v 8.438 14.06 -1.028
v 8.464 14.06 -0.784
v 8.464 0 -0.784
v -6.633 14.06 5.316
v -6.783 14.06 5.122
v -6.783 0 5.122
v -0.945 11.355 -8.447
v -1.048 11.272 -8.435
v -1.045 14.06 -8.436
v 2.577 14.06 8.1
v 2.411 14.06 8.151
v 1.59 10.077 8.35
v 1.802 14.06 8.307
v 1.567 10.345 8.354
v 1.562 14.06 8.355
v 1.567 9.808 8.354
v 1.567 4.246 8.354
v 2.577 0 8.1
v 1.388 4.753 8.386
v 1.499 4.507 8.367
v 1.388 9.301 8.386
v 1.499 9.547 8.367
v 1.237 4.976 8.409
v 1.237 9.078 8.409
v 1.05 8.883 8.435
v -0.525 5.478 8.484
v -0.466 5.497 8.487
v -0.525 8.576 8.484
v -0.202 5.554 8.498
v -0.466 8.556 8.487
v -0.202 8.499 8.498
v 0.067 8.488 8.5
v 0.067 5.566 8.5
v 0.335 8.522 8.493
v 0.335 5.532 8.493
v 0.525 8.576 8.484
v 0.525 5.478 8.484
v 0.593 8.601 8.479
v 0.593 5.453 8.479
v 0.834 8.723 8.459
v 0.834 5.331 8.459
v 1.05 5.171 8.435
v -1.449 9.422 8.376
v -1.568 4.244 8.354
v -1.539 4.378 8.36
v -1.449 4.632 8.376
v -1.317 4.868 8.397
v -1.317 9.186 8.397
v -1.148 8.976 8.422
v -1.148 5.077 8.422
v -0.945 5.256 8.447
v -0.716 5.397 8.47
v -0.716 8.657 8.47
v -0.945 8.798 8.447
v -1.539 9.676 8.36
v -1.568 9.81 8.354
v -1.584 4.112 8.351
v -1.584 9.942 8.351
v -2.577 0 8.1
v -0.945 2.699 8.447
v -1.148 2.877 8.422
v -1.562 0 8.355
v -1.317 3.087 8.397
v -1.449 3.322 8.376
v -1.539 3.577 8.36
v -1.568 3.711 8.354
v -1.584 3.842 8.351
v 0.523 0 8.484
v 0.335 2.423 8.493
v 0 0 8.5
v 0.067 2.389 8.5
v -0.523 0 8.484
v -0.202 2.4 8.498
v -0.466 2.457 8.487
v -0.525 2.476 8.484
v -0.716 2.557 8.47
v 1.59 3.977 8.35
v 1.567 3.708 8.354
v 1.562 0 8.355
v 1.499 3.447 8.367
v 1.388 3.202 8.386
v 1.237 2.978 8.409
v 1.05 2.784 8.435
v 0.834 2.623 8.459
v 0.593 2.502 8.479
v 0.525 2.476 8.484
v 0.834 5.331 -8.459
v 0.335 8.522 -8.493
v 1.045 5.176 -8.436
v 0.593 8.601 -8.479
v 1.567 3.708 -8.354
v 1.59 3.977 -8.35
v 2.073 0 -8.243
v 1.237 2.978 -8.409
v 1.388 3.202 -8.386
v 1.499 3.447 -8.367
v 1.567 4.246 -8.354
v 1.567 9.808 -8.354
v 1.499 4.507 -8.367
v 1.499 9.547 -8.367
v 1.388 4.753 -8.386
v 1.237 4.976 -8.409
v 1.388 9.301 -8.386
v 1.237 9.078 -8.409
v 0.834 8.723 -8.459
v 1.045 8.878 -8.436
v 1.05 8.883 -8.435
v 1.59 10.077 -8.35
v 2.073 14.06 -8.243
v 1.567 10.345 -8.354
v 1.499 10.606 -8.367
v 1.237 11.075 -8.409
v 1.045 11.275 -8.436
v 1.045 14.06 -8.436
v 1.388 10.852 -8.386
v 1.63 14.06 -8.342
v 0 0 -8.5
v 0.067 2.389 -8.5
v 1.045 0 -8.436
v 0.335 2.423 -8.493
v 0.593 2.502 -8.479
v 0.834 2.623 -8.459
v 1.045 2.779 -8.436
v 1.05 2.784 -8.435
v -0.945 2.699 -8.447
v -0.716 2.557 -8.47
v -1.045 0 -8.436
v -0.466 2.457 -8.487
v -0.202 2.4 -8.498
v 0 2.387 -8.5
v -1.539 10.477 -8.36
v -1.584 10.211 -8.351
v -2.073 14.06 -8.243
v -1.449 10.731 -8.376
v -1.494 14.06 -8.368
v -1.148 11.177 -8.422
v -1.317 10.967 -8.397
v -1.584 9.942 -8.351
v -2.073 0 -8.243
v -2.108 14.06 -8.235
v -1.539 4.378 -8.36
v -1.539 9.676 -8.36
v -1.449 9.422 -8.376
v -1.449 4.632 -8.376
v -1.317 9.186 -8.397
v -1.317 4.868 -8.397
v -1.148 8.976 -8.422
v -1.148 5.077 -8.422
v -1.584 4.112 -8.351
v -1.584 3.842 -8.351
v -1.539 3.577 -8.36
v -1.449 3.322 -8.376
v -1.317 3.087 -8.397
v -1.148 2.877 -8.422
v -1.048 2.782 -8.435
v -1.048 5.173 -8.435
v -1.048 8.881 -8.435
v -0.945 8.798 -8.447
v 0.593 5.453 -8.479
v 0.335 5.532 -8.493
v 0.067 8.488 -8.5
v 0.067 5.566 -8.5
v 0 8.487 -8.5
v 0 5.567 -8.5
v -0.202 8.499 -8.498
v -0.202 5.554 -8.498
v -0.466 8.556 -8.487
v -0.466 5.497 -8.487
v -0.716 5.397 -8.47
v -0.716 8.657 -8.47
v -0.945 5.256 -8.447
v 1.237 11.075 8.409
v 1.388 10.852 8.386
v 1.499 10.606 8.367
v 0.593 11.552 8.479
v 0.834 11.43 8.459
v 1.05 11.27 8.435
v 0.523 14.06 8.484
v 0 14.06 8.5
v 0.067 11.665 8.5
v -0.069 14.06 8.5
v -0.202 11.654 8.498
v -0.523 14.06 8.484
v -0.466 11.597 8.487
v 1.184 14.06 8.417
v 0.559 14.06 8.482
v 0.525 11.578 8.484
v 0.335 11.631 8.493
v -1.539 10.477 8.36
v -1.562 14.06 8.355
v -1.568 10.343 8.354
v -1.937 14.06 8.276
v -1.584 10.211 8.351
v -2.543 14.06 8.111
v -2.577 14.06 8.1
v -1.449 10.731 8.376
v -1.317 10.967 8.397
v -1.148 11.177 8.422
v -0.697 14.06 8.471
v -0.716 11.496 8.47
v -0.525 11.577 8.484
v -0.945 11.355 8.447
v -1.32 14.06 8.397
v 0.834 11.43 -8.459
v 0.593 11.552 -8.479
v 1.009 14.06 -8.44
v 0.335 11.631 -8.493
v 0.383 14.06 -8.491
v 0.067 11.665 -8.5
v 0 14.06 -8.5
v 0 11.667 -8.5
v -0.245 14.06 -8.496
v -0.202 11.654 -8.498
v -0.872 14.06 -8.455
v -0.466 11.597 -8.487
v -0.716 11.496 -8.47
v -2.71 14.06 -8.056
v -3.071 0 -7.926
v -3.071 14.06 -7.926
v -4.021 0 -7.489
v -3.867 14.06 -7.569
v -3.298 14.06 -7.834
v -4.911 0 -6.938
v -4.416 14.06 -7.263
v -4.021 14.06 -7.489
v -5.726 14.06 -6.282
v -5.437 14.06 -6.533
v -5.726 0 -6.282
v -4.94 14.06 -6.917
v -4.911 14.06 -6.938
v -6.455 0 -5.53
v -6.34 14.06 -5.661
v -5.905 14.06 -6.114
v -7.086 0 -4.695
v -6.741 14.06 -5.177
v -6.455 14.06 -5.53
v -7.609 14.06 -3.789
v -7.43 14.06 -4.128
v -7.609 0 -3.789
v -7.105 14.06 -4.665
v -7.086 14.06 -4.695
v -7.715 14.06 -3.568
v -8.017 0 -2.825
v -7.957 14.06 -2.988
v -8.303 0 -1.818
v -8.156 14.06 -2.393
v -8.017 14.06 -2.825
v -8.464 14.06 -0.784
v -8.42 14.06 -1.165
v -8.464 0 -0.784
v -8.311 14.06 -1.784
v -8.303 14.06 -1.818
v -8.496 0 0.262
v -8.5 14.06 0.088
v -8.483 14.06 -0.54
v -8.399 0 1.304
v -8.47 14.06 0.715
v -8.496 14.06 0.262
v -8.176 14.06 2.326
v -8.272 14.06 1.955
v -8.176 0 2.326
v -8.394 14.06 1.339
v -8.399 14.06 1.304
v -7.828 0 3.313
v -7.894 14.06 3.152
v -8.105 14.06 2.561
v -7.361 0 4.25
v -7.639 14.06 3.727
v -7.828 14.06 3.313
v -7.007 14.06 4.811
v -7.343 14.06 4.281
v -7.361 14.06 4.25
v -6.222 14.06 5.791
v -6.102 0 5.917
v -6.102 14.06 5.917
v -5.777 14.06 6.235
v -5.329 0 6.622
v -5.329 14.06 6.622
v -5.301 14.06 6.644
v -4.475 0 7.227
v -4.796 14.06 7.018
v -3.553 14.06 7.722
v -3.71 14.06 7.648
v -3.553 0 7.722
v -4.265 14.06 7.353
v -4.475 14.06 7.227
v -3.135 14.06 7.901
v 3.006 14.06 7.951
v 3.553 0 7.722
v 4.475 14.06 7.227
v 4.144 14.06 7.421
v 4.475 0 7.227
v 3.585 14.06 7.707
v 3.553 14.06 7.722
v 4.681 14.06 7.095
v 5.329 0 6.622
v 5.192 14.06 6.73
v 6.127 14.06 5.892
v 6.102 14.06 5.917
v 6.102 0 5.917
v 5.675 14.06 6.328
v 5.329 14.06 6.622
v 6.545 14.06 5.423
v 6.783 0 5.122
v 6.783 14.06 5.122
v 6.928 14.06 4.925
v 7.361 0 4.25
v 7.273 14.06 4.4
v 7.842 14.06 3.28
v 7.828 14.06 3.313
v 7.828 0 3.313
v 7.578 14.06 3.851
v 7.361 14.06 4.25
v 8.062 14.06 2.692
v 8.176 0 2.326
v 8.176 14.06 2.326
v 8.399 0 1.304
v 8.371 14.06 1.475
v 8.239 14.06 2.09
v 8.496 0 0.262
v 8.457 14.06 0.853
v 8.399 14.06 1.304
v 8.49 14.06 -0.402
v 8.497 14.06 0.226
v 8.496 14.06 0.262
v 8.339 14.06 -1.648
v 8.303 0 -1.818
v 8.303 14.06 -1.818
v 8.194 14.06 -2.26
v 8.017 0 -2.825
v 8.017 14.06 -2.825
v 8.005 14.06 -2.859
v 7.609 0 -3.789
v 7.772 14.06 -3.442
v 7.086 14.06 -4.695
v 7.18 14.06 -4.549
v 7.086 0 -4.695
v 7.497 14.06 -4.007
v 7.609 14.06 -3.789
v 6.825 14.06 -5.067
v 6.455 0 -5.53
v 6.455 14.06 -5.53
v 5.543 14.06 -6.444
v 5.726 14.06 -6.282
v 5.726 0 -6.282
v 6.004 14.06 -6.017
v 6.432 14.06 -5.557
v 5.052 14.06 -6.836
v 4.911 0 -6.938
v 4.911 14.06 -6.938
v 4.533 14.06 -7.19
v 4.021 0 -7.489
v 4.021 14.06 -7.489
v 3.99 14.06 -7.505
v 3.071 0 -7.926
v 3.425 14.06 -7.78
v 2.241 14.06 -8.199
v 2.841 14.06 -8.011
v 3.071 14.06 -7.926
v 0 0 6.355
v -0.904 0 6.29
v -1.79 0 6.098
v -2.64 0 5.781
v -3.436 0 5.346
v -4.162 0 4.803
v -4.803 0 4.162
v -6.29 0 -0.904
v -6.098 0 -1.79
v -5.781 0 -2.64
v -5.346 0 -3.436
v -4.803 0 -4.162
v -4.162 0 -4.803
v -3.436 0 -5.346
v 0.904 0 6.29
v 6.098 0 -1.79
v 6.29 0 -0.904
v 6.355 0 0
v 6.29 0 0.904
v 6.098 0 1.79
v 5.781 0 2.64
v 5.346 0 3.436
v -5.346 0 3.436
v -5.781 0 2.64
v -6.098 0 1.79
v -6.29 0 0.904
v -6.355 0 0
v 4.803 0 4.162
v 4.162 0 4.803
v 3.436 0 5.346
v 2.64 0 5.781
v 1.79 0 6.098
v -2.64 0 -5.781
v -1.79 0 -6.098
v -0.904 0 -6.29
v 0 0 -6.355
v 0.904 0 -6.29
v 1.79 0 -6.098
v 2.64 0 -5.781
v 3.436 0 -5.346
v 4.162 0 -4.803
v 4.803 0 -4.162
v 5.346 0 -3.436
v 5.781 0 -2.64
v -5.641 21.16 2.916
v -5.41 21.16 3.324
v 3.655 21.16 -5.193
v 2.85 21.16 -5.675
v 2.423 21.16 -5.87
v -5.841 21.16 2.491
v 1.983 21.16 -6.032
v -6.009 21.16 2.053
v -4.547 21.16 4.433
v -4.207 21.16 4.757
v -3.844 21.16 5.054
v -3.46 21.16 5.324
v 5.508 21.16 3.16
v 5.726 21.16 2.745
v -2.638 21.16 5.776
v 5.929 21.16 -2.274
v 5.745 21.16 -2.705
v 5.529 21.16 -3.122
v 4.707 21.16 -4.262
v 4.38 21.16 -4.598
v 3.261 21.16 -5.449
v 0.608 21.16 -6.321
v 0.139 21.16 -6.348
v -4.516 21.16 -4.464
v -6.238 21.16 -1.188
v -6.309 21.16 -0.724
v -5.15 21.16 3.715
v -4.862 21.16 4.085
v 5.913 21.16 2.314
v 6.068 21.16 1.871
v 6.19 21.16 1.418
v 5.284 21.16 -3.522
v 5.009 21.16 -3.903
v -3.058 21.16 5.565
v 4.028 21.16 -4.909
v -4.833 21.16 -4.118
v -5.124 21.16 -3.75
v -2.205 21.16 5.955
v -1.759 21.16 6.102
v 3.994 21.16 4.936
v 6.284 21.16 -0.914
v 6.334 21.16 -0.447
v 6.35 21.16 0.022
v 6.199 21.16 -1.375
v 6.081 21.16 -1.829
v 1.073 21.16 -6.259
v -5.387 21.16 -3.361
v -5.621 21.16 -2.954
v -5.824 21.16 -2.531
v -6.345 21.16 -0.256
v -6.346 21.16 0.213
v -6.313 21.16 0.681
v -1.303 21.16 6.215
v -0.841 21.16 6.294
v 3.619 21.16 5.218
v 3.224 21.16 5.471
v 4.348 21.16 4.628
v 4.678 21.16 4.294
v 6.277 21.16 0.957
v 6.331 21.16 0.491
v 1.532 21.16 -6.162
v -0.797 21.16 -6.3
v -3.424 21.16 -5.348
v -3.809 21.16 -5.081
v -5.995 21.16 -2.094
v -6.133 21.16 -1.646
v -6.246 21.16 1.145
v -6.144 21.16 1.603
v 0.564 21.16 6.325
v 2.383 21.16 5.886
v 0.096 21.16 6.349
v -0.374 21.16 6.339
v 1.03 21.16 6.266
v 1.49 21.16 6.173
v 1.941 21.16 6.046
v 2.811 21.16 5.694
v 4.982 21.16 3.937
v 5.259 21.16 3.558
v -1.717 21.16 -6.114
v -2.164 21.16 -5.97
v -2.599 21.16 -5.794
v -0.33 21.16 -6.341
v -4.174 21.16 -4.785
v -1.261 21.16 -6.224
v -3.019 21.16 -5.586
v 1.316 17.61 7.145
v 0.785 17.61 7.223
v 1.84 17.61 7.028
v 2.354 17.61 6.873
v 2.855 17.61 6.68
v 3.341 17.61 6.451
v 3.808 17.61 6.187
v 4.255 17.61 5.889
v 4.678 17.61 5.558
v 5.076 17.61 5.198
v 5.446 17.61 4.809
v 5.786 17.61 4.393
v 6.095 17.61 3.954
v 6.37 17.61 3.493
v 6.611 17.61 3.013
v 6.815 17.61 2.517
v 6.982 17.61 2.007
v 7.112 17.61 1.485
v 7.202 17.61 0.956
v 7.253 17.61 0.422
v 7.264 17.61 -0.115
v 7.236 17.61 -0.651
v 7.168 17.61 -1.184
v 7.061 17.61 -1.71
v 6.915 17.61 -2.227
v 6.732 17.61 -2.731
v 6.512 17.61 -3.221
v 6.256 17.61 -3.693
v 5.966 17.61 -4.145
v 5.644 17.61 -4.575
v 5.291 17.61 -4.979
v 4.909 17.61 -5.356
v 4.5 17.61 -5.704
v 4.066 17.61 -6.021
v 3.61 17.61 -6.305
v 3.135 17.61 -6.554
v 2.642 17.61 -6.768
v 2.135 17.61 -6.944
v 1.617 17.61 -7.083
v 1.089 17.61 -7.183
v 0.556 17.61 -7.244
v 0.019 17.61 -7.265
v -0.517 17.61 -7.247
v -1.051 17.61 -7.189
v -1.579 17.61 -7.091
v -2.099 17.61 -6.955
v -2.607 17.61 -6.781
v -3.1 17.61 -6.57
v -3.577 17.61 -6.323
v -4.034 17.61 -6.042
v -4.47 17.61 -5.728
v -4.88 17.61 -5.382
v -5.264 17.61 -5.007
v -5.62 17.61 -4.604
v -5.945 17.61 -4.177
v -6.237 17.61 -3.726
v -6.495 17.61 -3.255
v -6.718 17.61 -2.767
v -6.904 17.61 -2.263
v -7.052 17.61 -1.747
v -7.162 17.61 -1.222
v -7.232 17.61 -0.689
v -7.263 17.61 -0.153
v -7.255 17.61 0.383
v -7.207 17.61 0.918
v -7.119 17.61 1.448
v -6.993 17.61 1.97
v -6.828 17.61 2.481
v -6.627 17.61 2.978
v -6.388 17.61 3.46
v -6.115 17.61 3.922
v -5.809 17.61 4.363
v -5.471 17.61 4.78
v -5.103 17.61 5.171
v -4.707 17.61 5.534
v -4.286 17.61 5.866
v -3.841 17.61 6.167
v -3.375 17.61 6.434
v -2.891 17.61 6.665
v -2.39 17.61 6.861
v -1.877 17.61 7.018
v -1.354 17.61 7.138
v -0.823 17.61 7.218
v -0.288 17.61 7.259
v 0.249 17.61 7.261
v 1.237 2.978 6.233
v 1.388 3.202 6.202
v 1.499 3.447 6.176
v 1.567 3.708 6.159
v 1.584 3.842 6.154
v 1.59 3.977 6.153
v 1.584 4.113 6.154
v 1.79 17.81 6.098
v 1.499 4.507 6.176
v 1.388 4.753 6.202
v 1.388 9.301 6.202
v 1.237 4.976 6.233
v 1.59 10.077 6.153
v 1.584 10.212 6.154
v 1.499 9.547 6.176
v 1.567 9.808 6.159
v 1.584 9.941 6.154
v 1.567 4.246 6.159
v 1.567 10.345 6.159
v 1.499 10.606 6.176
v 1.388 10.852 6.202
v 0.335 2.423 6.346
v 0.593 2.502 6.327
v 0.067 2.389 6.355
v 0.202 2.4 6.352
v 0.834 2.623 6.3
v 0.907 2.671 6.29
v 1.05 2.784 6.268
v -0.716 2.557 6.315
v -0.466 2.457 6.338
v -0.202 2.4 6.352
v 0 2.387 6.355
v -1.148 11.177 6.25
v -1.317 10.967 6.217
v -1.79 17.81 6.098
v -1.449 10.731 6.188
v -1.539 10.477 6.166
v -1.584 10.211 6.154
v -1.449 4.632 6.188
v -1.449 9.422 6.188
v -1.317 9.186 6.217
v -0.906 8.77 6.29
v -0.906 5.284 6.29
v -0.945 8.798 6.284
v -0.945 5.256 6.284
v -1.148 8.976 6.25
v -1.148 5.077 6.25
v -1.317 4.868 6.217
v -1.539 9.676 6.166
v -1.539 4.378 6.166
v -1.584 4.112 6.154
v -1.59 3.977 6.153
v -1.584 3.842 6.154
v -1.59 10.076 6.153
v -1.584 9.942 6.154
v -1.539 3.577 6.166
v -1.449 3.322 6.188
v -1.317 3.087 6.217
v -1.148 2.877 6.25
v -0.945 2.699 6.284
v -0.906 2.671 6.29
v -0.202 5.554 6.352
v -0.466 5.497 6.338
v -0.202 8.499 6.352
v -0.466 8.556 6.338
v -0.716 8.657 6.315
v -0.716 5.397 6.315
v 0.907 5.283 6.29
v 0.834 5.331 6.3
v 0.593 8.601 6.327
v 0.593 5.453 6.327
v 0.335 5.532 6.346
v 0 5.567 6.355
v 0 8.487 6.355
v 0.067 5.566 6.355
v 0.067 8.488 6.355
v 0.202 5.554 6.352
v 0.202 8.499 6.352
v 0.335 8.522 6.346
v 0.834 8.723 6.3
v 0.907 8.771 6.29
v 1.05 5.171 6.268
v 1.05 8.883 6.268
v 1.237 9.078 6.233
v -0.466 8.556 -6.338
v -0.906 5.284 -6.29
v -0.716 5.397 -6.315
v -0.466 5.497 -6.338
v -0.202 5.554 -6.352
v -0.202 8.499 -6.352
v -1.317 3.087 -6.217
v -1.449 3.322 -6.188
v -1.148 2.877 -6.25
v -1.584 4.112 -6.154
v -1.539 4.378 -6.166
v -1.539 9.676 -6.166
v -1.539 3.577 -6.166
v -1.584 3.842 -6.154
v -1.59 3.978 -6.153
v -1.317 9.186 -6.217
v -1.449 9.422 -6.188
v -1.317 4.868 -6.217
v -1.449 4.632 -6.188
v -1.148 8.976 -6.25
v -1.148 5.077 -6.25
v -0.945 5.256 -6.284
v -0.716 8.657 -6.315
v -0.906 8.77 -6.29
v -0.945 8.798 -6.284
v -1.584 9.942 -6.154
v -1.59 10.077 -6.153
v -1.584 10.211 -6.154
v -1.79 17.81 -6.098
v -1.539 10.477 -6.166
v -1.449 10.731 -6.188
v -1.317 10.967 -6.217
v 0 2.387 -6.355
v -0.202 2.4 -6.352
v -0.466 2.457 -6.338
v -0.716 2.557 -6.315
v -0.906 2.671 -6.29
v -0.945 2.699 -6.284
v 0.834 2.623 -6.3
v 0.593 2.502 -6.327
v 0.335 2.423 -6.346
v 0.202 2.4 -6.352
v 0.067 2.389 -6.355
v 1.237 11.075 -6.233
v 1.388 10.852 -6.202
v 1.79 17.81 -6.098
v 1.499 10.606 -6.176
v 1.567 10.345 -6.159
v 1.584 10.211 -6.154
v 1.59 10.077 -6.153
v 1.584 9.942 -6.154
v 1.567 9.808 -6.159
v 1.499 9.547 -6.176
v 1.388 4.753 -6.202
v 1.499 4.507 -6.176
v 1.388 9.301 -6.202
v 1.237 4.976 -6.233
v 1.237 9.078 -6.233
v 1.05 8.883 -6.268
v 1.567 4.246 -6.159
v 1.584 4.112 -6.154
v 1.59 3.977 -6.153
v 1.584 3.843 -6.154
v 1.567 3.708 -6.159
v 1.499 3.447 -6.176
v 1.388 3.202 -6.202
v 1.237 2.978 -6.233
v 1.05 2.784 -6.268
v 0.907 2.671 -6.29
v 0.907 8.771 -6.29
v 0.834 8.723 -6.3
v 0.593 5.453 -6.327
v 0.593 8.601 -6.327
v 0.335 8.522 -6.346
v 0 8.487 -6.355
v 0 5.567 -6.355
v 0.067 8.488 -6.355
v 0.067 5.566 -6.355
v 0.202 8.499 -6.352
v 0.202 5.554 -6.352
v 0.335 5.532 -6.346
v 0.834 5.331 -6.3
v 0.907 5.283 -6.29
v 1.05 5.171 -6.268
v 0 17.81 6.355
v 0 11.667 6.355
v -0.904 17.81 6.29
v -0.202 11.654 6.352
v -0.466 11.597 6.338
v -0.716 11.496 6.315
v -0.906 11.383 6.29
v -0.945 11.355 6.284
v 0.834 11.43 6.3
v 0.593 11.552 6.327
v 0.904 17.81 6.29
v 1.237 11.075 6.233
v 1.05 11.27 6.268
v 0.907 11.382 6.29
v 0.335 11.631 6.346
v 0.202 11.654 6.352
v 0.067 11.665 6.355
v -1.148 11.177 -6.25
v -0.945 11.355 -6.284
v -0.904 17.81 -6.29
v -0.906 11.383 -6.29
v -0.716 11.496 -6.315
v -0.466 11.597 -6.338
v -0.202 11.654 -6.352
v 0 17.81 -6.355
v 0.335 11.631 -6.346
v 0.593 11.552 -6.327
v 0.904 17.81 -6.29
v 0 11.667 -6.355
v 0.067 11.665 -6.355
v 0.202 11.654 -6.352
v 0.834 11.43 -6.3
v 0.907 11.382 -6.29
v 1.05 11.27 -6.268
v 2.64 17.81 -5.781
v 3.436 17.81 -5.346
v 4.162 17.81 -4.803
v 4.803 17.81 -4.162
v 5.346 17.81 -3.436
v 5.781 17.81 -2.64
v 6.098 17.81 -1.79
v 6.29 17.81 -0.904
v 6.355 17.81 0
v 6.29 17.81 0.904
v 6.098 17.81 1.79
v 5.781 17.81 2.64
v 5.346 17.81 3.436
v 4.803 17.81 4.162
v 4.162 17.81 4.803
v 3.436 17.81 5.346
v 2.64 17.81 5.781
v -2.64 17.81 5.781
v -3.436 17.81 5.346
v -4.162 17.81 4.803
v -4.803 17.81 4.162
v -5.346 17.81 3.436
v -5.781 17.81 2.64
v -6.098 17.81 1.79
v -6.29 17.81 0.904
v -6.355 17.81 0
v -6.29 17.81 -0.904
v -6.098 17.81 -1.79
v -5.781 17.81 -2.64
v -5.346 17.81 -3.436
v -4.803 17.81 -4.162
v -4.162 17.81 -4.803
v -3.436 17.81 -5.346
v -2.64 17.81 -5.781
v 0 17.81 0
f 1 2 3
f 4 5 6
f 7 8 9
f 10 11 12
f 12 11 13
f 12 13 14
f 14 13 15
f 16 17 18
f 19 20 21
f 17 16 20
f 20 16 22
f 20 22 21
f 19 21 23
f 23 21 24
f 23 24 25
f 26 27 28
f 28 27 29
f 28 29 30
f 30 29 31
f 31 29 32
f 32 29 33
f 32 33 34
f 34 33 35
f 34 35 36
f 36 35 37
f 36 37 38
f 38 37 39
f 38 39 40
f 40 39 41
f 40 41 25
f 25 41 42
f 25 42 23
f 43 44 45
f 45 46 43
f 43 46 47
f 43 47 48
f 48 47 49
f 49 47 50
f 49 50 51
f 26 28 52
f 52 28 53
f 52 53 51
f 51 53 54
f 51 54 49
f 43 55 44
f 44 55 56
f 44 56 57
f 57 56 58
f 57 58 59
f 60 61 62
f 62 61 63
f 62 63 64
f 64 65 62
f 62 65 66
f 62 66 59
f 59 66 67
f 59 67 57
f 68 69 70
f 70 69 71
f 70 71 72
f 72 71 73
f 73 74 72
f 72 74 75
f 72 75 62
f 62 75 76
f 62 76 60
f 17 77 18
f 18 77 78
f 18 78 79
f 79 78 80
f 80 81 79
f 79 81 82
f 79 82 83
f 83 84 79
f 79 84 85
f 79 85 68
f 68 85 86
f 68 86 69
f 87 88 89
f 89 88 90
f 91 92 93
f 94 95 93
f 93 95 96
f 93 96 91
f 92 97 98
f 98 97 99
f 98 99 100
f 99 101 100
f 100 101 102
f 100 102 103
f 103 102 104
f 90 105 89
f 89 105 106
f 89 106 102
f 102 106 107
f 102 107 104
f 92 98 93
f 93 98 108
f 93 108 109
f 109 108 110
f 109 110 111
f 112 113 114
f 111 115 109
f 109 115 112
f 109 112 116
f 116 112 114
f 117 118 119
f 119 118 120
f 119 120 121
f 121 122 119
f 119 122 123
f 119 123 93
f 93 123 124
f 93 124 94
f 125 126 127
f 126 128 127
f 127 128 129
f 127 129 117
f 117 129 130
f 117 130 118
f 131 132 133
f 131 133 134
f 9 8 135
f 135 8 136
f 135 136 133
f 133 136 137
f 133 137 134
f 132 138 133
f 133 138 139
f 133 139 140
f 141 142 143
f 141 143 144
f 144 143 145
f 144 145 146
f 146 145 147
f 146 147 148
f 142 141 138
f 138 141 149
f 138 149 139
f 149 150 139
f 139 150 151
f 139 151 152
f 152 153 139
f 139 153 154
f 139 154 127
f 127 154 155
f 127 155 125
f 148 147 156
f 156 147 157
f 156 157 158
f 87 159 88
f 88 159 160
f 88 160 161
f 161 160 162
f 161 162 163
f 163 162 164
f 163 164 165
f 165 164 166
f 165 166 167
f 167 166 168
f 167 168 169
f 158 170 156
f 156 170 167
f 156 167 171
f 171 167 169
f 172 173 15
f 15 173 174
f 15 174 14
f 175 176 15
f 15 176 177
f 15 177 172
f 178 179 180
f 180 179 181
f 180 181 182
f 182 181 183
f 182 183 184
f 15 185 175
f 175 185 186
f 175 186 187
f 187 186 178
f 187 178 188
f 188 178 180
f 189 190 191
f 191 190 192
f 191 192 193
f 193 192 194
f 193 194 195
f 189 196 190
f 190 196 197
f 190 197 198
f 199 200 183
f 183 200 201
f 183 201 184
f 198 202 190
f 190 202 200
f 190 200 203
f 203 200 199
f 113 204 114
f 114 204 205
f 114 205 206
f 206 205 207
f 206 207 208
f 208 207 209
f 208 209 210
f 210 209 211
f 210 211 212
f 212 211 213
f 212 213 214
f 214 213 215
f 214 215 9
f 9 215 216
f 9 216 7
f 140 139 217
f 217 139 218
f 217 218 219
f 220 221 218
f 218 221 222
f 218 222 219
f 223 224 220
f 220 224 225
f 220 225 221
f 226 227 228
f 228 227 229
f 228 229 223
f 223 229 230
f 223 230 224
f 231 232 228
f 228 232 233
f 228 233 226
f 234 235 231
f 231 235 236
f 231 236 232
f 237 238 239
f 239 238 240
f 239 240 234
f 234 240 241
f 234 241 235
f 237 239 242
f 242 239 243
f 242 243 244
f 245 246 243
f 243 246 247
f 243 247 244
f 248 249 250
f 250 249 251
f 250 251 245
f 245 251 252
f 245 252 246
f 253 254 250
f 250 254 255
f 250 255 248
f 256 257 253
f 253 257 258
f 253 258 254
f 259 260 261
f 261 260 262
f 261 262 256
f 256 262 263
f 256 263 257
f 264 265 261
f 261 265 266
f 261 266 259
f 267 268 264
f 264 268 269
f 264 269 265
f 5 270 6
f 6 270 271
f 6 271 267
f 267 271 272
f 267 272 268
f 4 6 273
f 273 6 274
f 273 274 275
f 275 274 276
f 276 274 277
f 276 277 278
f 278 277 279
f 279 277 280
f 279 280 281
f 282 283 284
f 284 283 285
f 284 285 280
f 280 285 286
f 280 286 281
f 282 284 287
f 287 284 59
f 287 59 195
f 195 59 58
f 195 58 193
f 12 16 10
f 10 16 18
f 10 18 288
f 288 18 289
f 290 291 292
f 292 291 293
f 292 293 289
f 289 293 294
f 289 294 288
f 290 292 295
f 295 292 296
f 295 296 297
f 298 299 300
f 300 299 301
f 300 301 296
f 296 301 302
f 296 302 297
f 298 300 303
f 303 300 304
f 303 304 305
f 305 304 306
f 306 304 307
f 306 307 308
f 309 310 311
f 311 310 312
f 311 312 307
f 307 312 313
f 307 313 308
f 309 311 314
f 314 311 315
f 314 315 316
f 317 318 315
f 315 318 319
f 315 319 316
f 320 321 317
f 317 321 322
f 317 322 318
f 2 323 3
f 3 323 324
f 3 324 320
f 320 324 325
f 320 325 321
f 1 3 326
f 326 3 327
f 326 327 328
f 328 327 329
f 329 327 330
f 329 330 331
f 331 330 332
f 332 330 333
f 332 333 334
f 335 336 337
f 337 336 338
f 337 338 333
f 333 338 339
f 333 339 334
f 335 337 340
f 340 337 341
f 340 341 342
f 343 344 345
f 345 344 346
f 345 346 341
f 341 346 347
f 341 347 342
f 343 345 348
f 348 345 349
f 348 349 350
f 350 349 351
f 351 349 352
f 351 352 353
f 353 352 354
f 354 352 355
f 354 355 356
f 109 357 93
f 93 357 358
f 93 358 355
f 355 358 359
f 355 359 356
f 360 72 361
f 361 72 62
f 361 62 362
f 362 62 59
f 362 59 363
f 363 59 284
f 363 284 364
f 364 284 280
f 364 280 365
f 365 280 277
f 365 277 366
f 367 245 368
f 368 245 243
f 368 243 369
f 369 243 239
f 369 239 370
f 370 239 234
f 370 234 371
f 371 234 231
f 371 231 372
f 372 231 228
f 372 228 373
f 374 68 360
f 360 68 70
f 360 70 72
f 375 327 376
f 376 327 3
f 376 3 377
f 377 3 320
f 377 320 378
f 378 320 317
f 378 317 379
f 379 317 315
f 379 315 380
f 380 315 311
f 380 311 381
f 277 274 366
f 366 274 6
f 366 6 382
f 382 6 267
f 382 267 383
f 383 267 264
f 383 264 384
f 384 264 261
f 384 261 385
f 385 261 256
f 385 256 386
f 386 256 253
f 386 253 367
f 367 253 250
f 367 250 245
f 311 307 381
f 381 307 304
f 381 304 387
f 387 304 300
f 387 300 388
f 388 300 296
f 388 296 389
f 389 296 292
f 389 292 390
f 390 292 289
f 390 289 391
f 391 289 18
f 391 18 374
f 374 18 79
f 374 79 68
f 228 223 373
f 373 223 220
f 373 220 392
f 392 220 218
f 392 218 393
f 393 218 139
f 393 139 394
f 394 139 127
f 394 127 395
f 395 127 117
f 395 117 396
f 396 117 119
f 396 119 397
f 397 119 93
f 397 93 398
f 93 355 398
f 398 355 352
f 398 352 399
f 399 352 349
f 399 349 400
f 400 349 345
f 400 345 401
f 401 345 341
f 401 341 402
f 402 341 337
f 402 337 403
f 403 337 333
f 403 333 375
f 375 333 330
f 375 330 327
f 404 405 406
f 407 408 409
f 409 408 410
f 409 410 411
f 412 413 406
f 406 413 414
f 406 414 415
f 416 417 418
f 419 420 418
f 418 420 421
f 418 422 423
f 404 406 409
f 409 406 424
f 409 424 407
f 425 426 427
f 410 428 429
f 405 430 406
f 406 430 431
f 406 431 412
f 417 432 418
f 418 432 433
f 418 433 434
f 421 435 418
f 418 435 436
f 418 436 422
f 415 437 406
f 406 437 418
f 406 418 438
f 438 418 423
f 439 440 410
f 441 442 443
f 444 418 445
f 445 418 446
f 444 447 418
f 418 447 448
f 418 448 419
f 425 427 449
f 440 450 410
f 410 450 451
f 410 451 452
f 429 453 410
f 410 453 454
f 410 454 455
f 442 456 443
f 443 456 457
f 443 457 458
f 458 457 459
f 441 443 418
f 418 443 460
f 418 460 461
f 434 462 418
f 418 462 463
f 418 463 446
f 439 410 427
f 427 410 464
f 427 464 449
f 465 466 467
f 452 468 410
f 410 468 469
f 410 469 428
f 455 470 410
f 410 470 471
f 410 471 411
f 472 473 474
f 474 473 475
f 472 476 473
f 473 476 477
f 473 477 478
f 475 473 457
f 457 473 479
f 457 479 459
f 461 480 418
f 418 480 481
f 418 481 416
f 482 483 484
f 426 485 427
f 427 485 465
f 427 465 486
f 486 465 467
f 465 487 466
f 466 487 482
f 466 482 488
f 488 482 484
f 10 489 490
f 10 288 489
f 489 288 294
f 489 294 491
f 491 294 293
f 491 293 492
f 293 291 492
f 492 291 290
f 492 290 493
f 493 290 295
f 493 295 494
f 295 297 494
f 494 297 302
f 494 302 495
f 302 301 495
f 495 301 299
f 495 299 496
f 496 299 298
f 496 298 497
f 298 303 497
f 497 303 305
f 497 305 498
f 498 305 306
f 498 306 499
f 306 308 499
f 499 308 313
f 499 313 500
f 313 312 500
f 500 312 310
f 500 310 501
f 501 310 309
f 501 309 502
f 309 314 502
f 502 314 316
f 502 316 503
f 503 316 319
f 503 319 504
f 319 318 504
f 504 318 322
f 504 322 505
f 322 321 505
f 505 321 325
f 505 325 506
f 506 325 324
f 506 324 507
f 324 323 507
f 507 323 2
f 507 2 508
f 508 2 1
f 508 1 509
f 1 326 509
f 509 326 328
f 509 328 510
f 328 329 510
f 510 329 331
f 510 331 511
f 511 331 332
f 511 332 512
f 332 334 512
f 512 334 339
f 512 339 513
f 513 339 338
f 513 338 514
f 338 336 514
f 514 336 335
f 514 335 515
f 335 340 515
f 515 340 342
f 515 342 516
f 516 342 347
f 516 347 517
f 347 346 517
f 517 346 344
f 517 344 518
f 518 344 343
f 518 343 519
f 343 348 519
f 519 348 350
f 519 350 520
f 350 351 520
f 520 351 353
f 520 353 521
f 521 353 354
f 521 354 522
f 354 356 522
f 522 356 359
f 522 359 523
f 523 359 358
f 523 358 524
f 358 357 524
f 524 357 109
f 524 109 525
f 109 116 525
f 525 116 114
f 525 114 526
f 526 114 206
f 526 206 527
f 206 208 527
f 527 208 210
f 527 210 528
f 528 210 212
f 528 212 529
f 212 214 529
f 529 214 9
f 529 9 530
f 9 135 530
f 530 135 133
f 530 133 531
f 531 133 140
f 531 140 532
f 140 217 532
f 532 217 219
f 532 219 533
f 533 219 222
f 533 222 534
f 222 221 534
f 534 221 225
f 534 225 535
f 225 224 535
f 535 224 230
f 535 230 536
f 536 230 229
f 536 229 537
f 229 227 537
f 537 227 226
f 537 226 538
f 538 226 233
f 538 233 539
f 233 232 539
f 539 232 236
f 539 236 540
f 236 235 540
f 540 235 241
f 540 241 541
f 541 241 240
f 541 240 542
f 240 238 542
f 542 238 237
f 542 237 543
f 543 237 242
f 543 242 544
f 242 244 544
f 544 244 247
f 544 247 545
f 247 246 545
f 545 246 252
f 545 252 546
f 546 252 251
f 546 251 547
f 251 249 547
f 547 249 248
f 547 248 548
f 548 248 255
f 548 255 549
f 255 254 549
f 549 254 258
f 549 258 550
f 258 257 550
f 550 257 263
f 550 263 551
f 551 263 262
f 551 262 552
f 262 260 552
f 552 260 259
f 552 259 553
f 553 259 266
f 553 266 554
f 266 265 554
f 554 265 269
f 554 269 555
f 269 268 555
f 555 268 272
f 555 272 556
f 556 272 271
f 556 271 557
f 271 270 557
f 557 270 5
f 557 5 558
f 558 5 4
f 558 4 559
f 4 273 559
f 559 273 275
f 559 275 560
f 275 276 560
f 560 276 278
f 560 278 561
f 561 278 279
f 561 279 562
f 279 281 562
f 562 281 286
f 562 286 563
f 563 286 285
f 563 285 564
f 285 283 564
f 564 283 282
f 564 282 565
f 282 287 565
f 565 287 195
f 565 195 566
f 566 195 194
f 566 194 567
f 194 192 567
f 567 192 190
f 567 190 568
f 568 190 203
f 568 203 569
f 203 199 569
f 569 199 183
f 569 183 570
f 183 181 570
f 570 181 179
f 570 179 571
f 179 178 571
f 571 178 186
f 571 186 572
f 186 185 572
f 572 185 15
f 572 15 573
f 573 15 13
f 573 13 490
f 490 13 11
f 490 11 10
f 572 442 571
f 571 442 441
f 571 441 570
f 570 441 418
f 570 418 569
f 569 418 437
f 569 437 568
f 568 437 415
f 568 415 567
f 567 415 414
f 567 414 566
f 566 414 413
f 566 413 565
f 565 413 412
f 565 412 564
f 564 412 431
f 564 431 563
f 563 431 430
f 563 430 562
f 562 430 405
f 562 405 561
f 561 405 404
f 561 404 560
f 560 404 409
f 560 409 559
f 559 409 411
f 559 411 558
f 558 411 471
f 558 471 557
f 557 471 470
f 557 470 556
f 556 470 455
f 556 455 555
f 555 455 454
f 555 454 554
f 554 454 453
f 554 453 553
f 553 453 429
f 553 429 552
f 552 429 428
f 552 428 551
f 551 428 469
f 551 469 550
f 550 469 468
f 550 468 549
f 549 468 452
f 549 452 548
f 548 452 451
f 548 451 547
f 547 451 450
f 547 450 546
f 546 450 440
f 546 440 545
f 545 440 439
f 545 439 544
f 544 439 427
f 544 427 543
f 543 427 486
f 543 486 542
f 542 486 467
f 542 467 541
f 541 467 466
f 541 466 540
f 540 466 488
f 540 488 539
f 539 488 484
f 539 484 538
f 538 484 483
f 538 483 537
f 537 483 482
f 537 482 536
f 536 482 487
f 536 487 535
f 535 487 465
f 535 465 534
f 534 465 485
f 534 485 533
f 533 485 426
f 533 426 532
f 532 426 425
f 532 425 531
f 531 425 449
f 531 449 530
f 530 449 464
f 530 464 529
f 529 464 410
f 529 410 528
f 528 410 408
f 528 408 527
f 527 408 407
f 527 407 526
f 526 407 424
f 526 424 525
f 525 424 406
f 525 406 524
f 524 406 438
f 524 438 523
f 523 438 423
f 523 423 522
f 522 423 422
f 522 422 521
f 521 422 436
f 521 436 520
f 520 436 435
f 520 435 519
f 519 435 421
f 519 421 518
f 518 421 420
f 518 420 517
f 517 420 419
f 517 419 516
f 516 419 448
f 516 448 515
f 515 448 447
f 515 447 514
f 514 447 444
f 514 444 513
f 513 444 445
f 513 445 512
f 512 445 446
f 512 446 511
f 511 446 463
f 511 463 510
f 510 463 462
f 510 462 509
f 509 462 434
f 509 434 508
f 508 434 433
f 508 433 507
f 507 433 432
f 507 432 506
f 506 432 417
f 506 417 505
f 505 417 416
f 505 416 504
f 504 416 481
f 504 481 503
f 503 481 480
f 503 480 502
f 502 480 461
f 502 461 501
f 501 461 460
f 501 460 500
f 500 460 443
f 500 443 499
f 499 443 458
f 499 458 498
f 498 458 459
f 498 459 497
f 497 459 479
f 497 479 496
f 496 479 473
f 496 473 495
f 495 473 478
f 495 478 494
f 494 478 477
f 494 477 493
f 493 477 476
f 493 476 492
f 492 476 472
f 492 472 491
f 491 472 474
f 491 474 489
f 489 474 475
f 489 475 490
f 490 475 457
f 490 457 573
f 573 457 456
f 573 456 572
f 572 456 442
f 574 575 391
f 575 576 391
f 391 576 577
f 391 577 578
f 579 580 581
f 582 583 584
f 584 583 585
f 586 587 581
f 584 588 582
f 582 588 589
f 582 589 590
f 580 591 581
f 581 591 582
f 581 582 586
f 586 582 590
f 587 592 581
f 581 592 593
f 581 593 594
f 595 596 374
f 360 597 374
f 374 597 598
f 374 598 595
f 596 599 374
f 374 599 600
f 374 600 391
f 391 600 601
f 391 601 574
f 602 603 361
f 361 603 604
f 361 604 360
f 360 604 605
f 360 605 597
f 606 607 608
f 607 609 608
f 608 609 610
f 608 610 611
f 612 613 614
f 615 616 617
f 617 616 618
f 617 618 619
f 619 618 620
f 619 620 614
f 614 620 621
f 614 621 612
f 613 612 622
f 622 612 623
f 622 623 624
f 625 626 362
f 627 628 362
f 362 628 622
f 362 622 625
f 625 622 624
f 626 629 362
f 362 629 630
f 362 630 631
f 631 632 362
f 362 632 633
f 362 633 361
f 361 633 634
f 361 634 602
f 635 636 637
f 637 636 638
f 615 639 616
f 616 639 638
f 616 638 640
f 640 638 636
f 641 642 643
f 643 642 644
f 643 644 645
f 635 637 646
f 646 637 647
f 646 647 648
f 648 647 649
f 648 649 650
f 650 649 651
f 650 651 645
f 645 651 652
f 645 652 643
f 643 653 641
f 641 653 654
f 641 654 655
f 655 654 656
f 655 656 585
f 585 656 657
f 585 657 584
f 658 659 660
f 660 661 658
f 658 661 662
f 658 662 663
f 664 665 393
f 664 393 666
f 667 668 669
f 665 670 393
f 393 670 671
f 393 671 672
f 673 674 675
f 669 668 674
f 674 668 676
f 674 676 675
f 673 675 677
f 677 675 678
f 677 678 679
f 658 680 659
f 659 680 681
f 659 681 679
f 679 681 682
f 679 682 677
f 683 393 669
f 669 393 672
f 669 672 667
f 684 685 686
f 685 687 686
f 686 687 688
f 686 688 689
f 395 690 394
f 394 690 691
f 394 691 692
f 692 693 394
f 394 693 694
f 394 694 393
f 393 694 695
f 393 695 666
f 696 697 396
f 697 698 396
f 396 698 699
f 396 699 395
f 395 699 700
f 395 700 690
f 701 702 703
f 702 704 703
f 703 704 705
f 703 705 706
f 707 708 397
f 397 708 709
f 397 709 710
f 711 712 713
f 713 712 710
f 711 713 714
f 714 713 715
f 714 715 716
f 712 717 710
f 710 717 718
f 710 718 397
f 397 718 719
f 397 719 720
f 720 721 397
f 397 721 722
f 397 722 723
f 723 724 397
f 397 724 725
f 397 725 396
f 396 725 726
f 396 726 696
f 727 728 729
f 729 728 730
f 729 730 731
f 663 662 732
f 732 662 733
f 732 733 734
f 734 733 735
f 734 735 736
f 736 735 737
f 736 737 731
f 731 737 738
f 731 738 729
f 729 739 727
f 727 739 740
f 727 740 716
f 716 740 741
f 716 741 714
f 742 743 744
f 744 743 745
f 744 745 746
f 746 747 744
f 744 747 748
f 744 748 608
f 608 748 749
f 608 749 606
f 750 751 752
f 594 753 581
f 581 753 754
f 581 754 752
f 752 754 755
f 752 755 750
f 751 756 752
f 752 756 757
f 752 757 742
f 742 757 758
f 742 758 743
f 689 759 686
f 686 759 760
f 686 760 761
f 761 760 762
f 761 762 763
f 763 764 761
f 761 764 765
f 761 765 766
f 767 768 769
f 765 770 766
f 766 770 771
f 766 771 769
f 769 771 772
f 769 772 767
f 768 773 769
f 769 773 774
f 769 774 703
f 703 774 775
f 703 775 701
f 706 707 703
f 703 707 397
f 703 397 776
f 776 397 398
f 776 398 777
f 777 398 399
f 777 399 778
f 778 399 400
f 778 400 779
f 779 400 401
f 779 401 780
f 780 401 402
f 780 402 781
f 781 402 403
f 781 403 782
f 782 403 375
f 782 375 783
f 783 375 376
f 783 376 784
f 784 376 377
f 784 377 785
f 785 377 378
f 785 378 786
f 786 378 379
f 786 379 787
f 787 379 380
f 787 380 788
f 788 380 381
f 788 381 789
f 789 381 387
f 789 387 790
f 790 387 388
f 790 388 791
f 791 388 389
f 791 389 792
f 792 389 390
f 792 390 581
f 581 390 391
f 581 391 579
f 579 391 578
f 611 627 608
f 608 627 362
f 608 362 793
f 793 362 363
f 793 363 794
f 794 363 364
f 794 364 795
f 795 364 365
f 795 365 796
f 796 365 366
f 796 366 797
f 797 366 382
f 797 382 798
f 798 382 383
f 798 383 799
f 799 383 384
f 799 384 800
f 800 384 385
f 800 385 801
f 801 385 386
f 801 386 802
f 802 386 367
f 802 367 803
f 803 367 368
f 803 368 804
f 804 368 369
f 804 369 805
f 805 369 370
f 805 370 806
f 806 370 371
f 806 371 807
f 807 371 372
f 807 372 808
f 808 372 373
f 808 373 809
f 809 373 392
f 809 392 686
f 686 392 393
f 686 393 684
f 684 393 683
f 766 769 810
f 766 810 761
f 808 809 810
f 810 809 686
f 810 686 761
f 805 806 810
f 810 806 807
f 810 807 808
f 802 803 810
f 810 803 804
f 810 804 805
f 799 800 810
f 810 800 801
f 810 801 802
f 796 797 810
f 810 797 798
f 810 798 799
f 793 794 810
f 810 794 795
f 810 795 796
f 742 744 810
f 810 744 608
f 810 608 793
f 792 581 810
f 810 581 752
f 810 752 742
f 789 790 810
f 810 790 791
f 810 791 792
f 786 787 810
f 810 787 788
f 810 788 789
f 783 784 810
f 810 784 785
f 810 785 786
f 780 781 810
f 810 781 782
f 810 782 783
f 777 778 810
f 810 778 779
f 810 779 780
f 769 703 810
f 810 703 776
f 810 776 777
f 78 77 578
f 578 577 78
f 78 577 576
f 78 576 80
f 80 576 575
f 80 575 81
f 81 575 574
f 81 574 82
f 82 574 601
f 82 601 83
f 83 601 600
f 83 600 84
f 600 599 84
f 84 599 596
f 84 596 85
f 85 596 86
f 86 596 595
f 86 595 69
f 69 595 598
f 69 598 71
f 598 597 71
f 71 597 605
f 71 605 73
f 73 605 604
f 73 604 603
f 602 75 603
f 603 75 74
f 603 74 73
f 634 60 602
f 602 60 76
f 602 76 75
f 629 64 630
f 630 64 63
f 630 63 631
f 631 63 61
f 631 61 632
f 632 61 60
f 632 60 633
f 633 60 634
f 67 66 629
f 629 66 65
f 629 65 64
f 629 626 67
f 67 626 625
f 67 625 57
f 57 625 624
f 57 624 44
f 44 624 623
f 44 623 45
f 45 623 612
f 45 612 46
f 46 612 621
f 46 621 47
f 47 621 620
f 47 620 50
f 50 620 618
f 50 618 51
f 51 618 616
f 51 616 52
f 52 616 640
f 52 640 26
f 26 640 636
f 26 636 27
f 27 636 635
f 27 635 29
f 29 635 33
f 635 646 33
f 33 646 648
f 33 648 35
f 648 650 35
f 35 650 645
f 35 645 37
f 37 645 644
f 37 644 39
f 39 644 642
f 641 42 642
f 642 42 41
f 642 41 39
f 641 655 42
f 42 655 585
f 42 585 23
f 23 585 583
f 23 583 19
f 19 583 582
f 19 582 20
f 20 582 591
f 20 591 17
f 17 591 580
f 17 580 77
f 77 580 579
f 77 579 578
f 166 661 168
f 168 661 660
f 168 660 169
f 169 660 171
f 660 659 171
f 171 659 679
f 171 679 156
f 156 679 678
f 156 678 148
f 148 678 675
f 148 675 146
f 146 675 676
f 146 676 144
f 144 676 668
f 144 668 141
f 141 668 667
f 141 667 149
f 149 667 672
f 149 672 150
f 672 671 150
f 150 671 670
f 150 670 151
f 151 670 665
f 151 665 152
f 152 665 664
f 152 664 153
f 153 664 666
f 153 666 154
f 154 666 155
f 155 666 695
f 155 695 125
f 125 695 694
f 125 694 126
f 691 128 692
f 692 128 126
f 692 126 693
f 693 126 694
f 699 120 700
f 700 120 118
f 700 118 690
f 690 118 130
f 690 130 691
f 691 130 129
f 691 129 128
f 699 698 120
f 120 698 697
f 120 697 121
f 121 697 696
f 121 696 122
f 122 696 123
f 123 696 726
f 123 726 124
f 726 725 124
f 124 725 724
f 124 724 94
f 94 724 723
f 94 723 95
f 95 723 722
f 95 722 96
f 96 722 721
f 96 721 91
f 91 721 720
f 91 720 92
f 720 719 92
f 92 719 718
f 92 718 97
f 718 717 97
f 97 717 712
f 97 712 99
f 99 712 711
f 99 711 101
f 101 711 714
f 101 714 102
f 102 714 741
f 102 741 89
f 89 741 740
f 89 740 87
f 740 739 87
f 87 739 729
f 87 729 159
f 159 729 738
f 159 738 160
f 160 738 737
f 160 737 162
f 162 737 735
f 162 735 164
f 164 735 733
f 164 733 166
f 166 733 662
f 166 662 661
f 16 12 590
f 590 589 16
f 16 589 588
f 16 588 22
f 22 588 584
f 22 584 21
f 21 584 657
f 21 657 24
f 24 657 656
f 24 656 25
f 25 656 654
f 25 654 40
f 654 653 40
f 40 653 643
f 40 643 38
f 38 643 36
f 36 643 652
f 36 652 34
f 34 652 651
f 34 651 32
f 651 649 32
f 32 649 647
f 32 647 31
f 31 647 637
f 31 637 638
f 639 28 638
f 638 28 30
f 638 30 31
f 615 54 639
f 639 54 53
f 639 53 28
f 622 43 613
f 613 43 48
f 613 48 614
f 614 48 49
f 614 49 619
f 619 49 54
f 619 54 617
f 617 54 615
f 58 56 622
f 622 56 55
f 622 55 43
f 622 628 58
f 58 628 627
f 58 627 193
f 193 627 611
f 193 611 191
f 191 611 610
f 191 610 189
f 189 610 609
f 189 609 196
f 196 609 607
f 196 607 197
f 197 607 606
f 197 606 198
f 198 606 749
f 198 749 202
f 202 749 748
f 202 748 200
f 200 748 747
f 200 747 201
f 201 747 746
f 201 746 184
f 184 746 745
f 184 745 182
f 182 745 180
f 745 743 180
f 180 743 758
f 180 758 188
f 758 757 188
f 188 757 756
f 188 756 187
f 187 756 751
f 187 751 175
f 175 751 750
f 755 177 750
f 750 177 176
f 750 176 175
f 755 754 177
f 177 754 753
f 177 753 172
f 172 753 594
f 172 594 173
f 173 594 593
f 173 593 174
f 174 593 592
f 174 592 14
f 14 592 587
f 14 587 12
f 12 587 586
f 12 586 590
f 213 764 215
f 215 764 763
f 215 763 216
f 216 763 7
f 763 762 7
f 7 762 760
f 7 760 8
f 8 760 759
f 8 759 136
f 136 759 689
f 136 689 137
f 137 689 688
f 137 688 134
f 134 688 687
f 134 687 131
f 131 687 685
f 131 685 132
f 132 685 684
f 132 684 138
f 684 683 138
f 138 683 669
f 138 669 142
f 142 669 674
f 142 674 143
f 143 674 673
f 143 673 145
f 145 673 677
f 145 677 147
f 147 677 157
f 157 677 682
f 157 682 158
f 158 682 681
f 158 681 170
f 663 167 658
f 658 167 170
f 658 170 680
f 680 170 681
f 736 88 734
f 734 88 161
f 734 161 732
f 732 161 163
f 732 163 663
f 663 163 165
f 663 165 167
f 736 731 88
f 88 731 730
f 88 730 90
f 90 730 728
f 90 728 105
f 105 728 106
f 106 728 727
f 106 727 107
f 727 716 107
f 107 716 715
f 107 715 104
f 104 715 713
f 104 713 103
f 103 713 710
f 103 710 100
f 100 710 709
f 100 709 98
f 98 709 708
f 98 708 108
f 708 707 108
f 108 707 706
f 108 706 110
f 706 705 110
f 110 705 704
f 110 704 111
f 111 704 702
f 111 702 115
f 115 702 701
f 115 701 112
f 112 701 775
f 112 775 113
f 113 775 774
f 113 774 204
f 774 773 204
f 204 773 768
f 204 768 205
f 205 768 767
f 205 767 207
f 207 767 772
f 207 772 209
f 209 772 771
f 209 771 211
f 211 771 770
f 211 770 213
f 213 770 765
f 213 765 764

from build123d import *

# Parameters (mm, degrees)
SKETCH1_R           = 8.5
BOSS_EXTRUDE1_DEPTH = 14.06
SKETCH4_R           = 6.355
CUT_EXTRUDE5_DEPTH  = 17.81
SKETCH5_R           = 1.59
CUT_EXTRUDE6_DEPTH  = 10


with BuildPart() as part:
    # Sketch1 → Boss-Extrude1 (new body)
    with BuildSketch(Plane(origin=(0, 0, 0), x_dir=(1, 0, 0), z_dir=(0, 1, 0))):
        with Locations(Location((0, 0, 0), (0, 0, 270))):
            Circle(SKETCH1_R)
    extrude(amount=BOSS_EXTRUDE1_DEPTH)

    # Loft1: read off the stored shape, not the designer's step
    # Loft1: loft between two sections, ruled curve by curve
    loft1_from = [
        Edge.make_bspline([(-1.303322944, 21.16, 6.214808871), (-13.732940686, 21.16, 3.608162984), (-11.126294799, 21.16, -8.821454758), (1.303322944, 21.16, -6.214808871), (13.732940686, 21.16, -3.608162984), (11.126294799, 21.16, 8.821454758), (-1.303322944, 21.16, 6.214808871)], [0, 0, 0, 0, 0.5, 0.5, 0.5, 1, 1, 1, 1], 3, [1, 0.333333333, 0.333333333, 1, 0.333333333, 0.333333333, 1]),
    ]
    loft1_to = [
        Edge.make_bspline([(1.802060434, 14.06, 8.30677905), (-14.811497666, 14.06, 11.910899919), (-18.415618535, 14.06, -4.702658182), (-1.802060434, 14.06, -8.30677905), (14.811497666, 14.06, -11.910899919), (18.415618535, 14.06, 4.702658182), (1.802060434, 14.06, 8.30677905)], [0, 0, 0, 0, 0.5, 0.5, 0.5, 1, 1, 1, 1], 3, [1, 0.333333333, 0.333333333, 1, 0.333333333, 0.333333333, 1]),
    ]
    loft1 = Solid(Shell([*[Face.make_surface_from_curves(loft1_from[k], loft1_to[k]) for k in range(1)], Face(Wire(loft1_from)), Face(Wire(loft1_to))]))
    add(loft1)

    # Sketch4 → Cut-Extrude5 (cut)
    with BuildSketch(Plane.XZ):
        with Locations(Location((0, 0, 0), (0, 0, 270))):
            Circle(SKETCH4_R)
    extrude(amount=-CUT_EXTRUDE5_DEPTH, mode=Mode.SUBTRACT)

    # Sketch5 → Cut-Extrude6 (cut, symmetric)
    with BuildSketch(Plane.XY):
        with Locations((0, 10.076564013)):
            Circle(SKETCH5_R)
        with Locations((0, 3.977190907)):
            Circle(SKETCH5_R)
    extrude(amount=CUT_EXTRUDE6_DEPTH, both=True, mode=Mode.SUBTRACT)


solid = part.part
